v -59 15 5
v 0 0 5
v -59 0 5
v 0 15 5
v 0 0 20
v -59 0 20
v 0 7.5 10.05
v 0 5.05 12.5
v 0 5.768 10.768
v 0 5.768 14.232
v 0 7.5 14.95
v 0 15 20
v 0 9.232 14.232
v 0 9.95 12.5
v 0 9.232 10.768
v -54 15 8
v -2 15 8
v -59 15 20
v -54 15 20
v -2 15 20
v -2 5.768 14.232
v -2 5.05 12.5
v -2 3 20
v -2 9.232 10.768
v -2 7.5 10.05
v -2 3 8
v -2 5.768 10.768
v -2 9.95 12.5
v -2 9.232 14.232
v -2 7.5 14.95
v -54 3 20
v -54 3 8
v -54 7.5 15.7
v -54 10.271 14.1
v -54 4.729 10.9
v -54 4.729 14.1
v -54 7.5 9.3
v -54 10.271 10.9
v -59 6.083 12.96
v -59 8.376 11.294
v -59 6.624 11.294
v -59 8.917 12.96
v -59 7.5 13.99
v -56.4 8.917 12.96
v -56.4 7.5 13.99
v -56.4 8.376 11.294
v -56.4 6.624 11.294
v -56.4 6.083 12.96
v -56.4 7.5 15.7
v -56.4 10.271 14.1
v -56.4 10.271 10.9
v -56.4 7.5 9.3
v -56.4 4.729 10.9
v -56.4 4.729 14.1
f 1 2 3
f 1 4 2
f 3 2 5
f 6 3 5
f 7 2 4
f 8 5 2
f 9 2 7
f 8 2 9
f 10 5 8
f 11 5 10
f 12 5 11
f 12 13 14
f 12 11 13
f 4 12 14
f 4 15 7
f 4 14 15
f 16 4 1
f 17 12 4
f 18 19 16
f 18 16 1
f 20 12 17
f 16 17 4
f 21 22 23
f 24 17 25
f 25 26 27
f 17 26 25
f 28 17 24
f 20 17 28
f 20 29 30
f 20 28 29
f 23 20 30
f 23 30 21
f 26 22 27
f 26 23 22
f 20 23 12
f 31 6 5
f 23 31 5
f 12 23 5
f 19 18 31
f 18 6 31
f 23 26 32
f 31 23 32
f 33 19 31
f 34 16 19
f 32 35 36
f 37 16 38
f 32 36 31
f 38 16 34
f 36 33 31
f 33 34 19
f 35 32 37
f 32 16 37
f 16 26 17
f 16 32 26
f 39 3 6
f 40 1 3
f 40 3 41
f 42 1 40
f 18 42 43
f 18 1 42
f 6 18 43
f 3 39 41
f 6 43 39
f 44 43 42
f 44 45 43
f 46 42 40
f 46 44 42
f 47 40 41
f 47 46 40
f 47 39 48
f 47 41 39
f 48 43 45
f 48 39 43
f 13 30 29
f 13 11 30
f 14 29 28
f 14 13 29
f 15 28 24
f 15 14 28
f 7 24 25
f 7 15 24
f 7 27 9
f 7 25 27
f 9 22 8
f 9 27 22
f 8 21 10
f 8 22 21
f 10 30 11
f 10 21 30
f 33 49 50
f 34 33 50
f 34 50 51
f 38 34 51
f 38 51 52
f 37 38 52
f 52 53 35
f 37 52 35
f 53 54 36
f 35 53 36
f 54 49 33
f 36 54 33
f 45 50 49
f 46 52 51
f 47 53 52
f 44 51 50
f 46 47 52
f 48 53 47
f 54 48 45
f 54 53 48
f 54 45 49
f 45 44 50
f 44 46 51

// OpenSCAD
// file: nutsnbolts/data-access.scad
// Norm Nuts and Bolts - a OpenSCAD library
// Copyright (C) 2012  Johannes Kneer

// This program is free software: you can redistribute it and/or modify
// it under the terms of the GNU General Public License as published by
// the Free Software Foundation, either version 3 of the License, or
// (at your option) any later version.

// This program is distributed in the hope that it will be useful,
// but WITHOUT ANY WARRANTY; without even the implied warranty of
// MERCHANTABILITY or FITNESS FOR A PARTICULAR PURPOSE.  See the
// GNU General Public License for more details.

// You should have received a copy of the GNU General Public License
// along with this program.  If not, see <http://www.gnu.org/licenses/>.


// DATABASE ACCESS FUNCTIONS AND CONSTANTS



// == CONSTANTS ==

// screw table access keys
_NB_S_DESC            = 0;
_NB_S_FAMKEY			    = 1;
_NB_S_LENGTH          = 2;
_NB_S_NOTHREAD_LENGTH = 3;

_NB_F_DESC			      = 0;
_NB_F_OUTER_DIA       = 1;
_NB_F_INNER_DIA       = 2;
_NB_F_LEAD            = 3;
_NB_F_KEY             = 4;
_NB_F_KEY_DEPTH       = 5;
_NB_F_HEAD_HEIGHT     = 6;
_NB_F_HEAD_DIA        = 7;
_NB_F_NUT_KEY         = 8;
_NB_F_NUT_HEIGHT      = 9;
_NB_F_PITCH_FINE      = 10;
_NB_F_PITCH_MEDIUM    = 11;
_NB_F_PITCH_COARSE    = 12;


// == FUNCTIONS ==

// _get_screw("descriptor")   with descriptor = M8x25
//   find the line for a general object in the data matrix

function _get_screw(n) = data_screw[search([n], data_screw)[0]];
function _get_screw_fam(n) = data_screw_fam[search([_get_screw(n)[_NB_S_FAMKEY]], data_screw_fam)[0]];

function _get_fam(n) = data_screw_fam[search([n], data_screw_fam)[0]];


// _get_XXXXX("descriptor") functions
// find a single property in the database

function _get_desc(n)        = _get_screw(n)[_NB_S_DESC];
function _get_famkey(n)         = _get_screw(n)[_NB_S_FAMKEY];
function _get_length(n)      = _get_screw(n)[_NB_S_LENGTH];
function _get_nt_length(n)   = _get_screw(n)[_NB_S_NOTHREAD_LENGTH];

function _get_outer_dia(n)   = _get_screw_fam(n)[_NB_F_OUTER_DIA];
function _get_inner_dia(n)   = _get_screw_fam(n)[_NB_F_INNER_DIA];
function _get_lead(n)        = _get_screw_fam(n)[_NB_F_LEAD];
function _get_head_height(n) = _get_screw_fam(n)[_NB_F_HEAD_HEIGHT];
function _get_head_dia(n)    = _get_screw_fam(n)[_NB_F_HEAD_DIA];
function _get_nut_key(n)     = _get_screw_fam(n)[_NB_F_NUT_KEY];
function _get_nut_height(n)  = _get_screw_fam(n)[_NB_F_NUT_HEIGHT];
function _get_fine_pitch(n)  = _get_screw_fam(n)[_NB_F_PITCH_FINE];
function _get_medium_pitch(n)  = _get_screw_fam(n)[_NB_F_PITCH_MEDIUM];
function _get_coarse_pitch(n)  = _get_screw_fam(n)[_NB_F_PITCH_COARSE];
// file: nutsnbolts/materials.scad
// Norm Nuts and Bolts - a OpenSCAD library
// Copyright (C) 2012  Johannes Kneer

// This program is free software: you can redistribute it and/or modify
// it under the terms of the GNU General Public License as published by
// the Free Software Foundation, either version 3 of the License, or
// (at your option) any later version.

// This program is distributed in the hope that it will be useful,
// but WITHOUT ANY WARRANTY; without even the implied warranty of
// MERCHANTABILITY or FITNESS FOR A PARTICULAR PURPOSE.  See the
// GNU General Public License for more details.

// You should have received a copy of the GNU General Public License
// along with this program.  If not, see <http://www.gnu.org/licenses/>.


// MATERIALS

// all materials take a no-parameter that should be used to document
// the exact material in code, the number is not yet used in the code 



module stainless(no="1.4301") {
	color([0.45, 0.43, 0.5]) children([0:$children-1]);
}

module steel(no) {
	color([0.65, 0.67, 0.72]) children([0:$children-1]);
}

module iron(no="ST37") {
	color([0.36, 0.33, 0.33]) children([0:$children-1]);
}

// additional colors
CL_ZINC = [0.4, 0.4, 0.4];
// file: ../MCAD/nuts_and_bolts.scad
// Copyright 2010 D1plo1d

// This library is dual licensed under the GPL 3.0 and the GNU Lesser General Public License as per http://creativecommons.org/licenses/LGPL/2.1/ .

//testNutsAndBolts();

module SKIPtestNutsAndBolts()
{
	$fn = 360;
	translate([0,15])nutHole(3, proj=2);
	boltHole(3, length= 30, proj=2);
}

MM = "mm";
INCH = "inch"; //Not yet supported

//Based on: http://www.roymech.co.uk/Useful_Tables/Screws/Hex_Screws.htm
METRIC_NUT_AC_WIDTHS =
[
	-1, //0 index is not used but reduces computation
	-1,
	4.38,//m2
	6.40,//m3
	8.10,//m4
	9.20,//m5
	11.50,//m6
	-1,
	15.00,//m8
	-1,
	19.60,//m10
	-1,
	22.10,//m12
	-1,
	-1,
	-1,
	27.70,//m16
	-1,
	-1,
	-1,
	34.60,//m20
	-1,
	-1,
	-1,
	41.60,//m24
	-1,
	-1,
	-1,
	-1,
	-1,
	53.1,//m30
	-1,
	-1,
	-1,
	-1,
	-1,
	63.5//m36
];
METRIC_NUT_THICKNESS =
[
	-1, //0 index is not used but reduces computation
	-1,
	1.6,//m2
	2.40,//m3
	3.20,//m4
	4.00,//m5
	5.00,//m6
	-1,
	6.50,//m8
	-1,
	8.00,//m10
	-1,
	10.00,//m12
	-1,
	-1,
	-1,
	13.00,//m16
	-1,
	-1,
	-1,
	16.00//m20
	-1,
	-1,
	-1,
	19.00,//m24
	-1,
	-1,
	-1,
	-1,
	-1,
	24.00,//m30
	-1,
	-1,
	-1,
	-1,
	-1,
	29.00//m36
];

COARSE_THREAD_METRIC_BOLT_MAJOR_DIAMETERS =
[//based on max values
	-1, //0 index is not used but reduces computation
	-1,
	1.6,//m2
	2.98,//m3
	3.978,//m4
	4.976,//m5
	5.974,//m6
	-1,
	7.972,//m8
	-1,
	9.968,//m10
	-1,
	11.966,//m12
	-1,
	-1,
	-1,
	15.962,//m16
	-1,
	-1,
	-1,
	19.958,//m20
	-1,
	-1,
	-1,
	23.952,//m24
	-1,
	-1,
	-1,
	-1,
	-1,
	29.947,//m30
	-1,
	-1,
	-1,
	-1,
	-1,
	35.940//m36
];

// Deprecated, but kept around for people who use the wrong spelling.
COURSE_METRIC_BOLT_MAJOR_THREAD_DIAMETERS = COARSE_THREAD_METRIC_BOLT_MAJOR_DIAMETERS;

//Based on: http://www.roymech.co.uk/Useful_Tables/Screws/cap_screws.htm
METRIC_BOLT_CAP_DIAMETERS =
[
	-1, //0 index is not used but reduces computation
	-1,
	3.8,
	5.50,//m3
	7.00,//m4
	8.50,//m5
	10.00,//m6
	-1,
	13.00,//m8
	-1,
	16.00,//m10
	-1,
	18.00,//m12
	-1,
	-1,
	-1,
	24.00,//m16
	-1,
	-1,
	-1,
	30.00//m20
	-1,
	-1,
	-1,
	36.00,//m24
	-1,
	-1,
	-1,
	-1,
	-1,
	45.00,//m30
	-1,
	-1,
	-1,
	-1,
	-1,
	54.00//m36
];

module nutHole(size, units=MM, tolerance = +0.0001, proj = -1)
{
	//takes a metric screw/nut size and looksup nut dimensions
	radius = METRIC_NUT_AC_WIDTHS[size]/2+tolerance;
	height = METRIC_NUT_THICKNESS[size]+tolerance;
	if (proj == -1)
	{
		cylinder(r= radius, h=height, $fn = 6, center=[0,0]);
	}
	if (proj == 1)
	{
		circle(r= radius, $fn = 6);
	}
	if (proj == 2)
	{
		translate([-radius/2, 0])
			square([radius*2, height]);
	}
}

module boltHole(size, units=MM, length, tolerance = +0.0001, proj = -1)
{
	radius = COARSE_THREAD_METRIC_BOLT_MAJOR_DIAMETERS[size]/2+tolerance;
	capHeight = size+tolerance;
	capRadius = METRIC_BOLT_CAP_DIAMETERS[size]/2+tolerance;

	if (proj == -1)
	{
	translate([0, 0, -capHeight])
		cylinder(r= capRadius, h=capHeight);
	cylinder(r = radius, h = length);
	}
	if (proj == 1)
	{
		circle(r = radius);
	}
	if (proj == 2)
	{
		translate([-capRadius/2, -capHeight])
			square([capRadius*2, capHeight]);
		square([radius*2, length]);
	}
}
// main file
use <../MCAD/nuts_and_bolts.scad>;
include <nutsnbolts/cyl_head_bolt.scad>;
include <nutsnbolts/materials.scad>;

sblen = 54;

module senbracket()
{
    difference(){
        translate([35,0,0]) cube([15,4,30]);
        translate([12.5+30, 3, 22.5]) rotate([90,180,0])  boltHole(3,length=8);
        translate([10+30, 2, 5]) rotate([90,180,0])  boltHole(3,length=8);
        translate([15+30, 2, 5]) rotate([90,180,0])  boltHole(3,length=8);
    }
}

module senmount_body()
{

	translate([5,0,0]) cube([15,15,2]);
        translate([5,0,0]) cube([15,3,sblen]);
        translate([5,0,0]) cube([3,15,sblen]);
	
        translate([5,0,sblen]) cube([15,15,5]);
	
    
        
}

module senmount_cuts()
{
	
    translate([12.5,7.5,-0.1]) cylinder(r=2.45,h=3);
    translate([12.5,7.5,sblen]) nutHole(3);
    translate([12.5,7.5,sblen-1]) boltHole(3,length=9);
	
    
    
    	


	
}


module senmount()
{
	difference(){
		senmount_body();
		senmount_cuts();
	        }
	
}


rotate([0,-90,0]) senmount();
%senbracket();
